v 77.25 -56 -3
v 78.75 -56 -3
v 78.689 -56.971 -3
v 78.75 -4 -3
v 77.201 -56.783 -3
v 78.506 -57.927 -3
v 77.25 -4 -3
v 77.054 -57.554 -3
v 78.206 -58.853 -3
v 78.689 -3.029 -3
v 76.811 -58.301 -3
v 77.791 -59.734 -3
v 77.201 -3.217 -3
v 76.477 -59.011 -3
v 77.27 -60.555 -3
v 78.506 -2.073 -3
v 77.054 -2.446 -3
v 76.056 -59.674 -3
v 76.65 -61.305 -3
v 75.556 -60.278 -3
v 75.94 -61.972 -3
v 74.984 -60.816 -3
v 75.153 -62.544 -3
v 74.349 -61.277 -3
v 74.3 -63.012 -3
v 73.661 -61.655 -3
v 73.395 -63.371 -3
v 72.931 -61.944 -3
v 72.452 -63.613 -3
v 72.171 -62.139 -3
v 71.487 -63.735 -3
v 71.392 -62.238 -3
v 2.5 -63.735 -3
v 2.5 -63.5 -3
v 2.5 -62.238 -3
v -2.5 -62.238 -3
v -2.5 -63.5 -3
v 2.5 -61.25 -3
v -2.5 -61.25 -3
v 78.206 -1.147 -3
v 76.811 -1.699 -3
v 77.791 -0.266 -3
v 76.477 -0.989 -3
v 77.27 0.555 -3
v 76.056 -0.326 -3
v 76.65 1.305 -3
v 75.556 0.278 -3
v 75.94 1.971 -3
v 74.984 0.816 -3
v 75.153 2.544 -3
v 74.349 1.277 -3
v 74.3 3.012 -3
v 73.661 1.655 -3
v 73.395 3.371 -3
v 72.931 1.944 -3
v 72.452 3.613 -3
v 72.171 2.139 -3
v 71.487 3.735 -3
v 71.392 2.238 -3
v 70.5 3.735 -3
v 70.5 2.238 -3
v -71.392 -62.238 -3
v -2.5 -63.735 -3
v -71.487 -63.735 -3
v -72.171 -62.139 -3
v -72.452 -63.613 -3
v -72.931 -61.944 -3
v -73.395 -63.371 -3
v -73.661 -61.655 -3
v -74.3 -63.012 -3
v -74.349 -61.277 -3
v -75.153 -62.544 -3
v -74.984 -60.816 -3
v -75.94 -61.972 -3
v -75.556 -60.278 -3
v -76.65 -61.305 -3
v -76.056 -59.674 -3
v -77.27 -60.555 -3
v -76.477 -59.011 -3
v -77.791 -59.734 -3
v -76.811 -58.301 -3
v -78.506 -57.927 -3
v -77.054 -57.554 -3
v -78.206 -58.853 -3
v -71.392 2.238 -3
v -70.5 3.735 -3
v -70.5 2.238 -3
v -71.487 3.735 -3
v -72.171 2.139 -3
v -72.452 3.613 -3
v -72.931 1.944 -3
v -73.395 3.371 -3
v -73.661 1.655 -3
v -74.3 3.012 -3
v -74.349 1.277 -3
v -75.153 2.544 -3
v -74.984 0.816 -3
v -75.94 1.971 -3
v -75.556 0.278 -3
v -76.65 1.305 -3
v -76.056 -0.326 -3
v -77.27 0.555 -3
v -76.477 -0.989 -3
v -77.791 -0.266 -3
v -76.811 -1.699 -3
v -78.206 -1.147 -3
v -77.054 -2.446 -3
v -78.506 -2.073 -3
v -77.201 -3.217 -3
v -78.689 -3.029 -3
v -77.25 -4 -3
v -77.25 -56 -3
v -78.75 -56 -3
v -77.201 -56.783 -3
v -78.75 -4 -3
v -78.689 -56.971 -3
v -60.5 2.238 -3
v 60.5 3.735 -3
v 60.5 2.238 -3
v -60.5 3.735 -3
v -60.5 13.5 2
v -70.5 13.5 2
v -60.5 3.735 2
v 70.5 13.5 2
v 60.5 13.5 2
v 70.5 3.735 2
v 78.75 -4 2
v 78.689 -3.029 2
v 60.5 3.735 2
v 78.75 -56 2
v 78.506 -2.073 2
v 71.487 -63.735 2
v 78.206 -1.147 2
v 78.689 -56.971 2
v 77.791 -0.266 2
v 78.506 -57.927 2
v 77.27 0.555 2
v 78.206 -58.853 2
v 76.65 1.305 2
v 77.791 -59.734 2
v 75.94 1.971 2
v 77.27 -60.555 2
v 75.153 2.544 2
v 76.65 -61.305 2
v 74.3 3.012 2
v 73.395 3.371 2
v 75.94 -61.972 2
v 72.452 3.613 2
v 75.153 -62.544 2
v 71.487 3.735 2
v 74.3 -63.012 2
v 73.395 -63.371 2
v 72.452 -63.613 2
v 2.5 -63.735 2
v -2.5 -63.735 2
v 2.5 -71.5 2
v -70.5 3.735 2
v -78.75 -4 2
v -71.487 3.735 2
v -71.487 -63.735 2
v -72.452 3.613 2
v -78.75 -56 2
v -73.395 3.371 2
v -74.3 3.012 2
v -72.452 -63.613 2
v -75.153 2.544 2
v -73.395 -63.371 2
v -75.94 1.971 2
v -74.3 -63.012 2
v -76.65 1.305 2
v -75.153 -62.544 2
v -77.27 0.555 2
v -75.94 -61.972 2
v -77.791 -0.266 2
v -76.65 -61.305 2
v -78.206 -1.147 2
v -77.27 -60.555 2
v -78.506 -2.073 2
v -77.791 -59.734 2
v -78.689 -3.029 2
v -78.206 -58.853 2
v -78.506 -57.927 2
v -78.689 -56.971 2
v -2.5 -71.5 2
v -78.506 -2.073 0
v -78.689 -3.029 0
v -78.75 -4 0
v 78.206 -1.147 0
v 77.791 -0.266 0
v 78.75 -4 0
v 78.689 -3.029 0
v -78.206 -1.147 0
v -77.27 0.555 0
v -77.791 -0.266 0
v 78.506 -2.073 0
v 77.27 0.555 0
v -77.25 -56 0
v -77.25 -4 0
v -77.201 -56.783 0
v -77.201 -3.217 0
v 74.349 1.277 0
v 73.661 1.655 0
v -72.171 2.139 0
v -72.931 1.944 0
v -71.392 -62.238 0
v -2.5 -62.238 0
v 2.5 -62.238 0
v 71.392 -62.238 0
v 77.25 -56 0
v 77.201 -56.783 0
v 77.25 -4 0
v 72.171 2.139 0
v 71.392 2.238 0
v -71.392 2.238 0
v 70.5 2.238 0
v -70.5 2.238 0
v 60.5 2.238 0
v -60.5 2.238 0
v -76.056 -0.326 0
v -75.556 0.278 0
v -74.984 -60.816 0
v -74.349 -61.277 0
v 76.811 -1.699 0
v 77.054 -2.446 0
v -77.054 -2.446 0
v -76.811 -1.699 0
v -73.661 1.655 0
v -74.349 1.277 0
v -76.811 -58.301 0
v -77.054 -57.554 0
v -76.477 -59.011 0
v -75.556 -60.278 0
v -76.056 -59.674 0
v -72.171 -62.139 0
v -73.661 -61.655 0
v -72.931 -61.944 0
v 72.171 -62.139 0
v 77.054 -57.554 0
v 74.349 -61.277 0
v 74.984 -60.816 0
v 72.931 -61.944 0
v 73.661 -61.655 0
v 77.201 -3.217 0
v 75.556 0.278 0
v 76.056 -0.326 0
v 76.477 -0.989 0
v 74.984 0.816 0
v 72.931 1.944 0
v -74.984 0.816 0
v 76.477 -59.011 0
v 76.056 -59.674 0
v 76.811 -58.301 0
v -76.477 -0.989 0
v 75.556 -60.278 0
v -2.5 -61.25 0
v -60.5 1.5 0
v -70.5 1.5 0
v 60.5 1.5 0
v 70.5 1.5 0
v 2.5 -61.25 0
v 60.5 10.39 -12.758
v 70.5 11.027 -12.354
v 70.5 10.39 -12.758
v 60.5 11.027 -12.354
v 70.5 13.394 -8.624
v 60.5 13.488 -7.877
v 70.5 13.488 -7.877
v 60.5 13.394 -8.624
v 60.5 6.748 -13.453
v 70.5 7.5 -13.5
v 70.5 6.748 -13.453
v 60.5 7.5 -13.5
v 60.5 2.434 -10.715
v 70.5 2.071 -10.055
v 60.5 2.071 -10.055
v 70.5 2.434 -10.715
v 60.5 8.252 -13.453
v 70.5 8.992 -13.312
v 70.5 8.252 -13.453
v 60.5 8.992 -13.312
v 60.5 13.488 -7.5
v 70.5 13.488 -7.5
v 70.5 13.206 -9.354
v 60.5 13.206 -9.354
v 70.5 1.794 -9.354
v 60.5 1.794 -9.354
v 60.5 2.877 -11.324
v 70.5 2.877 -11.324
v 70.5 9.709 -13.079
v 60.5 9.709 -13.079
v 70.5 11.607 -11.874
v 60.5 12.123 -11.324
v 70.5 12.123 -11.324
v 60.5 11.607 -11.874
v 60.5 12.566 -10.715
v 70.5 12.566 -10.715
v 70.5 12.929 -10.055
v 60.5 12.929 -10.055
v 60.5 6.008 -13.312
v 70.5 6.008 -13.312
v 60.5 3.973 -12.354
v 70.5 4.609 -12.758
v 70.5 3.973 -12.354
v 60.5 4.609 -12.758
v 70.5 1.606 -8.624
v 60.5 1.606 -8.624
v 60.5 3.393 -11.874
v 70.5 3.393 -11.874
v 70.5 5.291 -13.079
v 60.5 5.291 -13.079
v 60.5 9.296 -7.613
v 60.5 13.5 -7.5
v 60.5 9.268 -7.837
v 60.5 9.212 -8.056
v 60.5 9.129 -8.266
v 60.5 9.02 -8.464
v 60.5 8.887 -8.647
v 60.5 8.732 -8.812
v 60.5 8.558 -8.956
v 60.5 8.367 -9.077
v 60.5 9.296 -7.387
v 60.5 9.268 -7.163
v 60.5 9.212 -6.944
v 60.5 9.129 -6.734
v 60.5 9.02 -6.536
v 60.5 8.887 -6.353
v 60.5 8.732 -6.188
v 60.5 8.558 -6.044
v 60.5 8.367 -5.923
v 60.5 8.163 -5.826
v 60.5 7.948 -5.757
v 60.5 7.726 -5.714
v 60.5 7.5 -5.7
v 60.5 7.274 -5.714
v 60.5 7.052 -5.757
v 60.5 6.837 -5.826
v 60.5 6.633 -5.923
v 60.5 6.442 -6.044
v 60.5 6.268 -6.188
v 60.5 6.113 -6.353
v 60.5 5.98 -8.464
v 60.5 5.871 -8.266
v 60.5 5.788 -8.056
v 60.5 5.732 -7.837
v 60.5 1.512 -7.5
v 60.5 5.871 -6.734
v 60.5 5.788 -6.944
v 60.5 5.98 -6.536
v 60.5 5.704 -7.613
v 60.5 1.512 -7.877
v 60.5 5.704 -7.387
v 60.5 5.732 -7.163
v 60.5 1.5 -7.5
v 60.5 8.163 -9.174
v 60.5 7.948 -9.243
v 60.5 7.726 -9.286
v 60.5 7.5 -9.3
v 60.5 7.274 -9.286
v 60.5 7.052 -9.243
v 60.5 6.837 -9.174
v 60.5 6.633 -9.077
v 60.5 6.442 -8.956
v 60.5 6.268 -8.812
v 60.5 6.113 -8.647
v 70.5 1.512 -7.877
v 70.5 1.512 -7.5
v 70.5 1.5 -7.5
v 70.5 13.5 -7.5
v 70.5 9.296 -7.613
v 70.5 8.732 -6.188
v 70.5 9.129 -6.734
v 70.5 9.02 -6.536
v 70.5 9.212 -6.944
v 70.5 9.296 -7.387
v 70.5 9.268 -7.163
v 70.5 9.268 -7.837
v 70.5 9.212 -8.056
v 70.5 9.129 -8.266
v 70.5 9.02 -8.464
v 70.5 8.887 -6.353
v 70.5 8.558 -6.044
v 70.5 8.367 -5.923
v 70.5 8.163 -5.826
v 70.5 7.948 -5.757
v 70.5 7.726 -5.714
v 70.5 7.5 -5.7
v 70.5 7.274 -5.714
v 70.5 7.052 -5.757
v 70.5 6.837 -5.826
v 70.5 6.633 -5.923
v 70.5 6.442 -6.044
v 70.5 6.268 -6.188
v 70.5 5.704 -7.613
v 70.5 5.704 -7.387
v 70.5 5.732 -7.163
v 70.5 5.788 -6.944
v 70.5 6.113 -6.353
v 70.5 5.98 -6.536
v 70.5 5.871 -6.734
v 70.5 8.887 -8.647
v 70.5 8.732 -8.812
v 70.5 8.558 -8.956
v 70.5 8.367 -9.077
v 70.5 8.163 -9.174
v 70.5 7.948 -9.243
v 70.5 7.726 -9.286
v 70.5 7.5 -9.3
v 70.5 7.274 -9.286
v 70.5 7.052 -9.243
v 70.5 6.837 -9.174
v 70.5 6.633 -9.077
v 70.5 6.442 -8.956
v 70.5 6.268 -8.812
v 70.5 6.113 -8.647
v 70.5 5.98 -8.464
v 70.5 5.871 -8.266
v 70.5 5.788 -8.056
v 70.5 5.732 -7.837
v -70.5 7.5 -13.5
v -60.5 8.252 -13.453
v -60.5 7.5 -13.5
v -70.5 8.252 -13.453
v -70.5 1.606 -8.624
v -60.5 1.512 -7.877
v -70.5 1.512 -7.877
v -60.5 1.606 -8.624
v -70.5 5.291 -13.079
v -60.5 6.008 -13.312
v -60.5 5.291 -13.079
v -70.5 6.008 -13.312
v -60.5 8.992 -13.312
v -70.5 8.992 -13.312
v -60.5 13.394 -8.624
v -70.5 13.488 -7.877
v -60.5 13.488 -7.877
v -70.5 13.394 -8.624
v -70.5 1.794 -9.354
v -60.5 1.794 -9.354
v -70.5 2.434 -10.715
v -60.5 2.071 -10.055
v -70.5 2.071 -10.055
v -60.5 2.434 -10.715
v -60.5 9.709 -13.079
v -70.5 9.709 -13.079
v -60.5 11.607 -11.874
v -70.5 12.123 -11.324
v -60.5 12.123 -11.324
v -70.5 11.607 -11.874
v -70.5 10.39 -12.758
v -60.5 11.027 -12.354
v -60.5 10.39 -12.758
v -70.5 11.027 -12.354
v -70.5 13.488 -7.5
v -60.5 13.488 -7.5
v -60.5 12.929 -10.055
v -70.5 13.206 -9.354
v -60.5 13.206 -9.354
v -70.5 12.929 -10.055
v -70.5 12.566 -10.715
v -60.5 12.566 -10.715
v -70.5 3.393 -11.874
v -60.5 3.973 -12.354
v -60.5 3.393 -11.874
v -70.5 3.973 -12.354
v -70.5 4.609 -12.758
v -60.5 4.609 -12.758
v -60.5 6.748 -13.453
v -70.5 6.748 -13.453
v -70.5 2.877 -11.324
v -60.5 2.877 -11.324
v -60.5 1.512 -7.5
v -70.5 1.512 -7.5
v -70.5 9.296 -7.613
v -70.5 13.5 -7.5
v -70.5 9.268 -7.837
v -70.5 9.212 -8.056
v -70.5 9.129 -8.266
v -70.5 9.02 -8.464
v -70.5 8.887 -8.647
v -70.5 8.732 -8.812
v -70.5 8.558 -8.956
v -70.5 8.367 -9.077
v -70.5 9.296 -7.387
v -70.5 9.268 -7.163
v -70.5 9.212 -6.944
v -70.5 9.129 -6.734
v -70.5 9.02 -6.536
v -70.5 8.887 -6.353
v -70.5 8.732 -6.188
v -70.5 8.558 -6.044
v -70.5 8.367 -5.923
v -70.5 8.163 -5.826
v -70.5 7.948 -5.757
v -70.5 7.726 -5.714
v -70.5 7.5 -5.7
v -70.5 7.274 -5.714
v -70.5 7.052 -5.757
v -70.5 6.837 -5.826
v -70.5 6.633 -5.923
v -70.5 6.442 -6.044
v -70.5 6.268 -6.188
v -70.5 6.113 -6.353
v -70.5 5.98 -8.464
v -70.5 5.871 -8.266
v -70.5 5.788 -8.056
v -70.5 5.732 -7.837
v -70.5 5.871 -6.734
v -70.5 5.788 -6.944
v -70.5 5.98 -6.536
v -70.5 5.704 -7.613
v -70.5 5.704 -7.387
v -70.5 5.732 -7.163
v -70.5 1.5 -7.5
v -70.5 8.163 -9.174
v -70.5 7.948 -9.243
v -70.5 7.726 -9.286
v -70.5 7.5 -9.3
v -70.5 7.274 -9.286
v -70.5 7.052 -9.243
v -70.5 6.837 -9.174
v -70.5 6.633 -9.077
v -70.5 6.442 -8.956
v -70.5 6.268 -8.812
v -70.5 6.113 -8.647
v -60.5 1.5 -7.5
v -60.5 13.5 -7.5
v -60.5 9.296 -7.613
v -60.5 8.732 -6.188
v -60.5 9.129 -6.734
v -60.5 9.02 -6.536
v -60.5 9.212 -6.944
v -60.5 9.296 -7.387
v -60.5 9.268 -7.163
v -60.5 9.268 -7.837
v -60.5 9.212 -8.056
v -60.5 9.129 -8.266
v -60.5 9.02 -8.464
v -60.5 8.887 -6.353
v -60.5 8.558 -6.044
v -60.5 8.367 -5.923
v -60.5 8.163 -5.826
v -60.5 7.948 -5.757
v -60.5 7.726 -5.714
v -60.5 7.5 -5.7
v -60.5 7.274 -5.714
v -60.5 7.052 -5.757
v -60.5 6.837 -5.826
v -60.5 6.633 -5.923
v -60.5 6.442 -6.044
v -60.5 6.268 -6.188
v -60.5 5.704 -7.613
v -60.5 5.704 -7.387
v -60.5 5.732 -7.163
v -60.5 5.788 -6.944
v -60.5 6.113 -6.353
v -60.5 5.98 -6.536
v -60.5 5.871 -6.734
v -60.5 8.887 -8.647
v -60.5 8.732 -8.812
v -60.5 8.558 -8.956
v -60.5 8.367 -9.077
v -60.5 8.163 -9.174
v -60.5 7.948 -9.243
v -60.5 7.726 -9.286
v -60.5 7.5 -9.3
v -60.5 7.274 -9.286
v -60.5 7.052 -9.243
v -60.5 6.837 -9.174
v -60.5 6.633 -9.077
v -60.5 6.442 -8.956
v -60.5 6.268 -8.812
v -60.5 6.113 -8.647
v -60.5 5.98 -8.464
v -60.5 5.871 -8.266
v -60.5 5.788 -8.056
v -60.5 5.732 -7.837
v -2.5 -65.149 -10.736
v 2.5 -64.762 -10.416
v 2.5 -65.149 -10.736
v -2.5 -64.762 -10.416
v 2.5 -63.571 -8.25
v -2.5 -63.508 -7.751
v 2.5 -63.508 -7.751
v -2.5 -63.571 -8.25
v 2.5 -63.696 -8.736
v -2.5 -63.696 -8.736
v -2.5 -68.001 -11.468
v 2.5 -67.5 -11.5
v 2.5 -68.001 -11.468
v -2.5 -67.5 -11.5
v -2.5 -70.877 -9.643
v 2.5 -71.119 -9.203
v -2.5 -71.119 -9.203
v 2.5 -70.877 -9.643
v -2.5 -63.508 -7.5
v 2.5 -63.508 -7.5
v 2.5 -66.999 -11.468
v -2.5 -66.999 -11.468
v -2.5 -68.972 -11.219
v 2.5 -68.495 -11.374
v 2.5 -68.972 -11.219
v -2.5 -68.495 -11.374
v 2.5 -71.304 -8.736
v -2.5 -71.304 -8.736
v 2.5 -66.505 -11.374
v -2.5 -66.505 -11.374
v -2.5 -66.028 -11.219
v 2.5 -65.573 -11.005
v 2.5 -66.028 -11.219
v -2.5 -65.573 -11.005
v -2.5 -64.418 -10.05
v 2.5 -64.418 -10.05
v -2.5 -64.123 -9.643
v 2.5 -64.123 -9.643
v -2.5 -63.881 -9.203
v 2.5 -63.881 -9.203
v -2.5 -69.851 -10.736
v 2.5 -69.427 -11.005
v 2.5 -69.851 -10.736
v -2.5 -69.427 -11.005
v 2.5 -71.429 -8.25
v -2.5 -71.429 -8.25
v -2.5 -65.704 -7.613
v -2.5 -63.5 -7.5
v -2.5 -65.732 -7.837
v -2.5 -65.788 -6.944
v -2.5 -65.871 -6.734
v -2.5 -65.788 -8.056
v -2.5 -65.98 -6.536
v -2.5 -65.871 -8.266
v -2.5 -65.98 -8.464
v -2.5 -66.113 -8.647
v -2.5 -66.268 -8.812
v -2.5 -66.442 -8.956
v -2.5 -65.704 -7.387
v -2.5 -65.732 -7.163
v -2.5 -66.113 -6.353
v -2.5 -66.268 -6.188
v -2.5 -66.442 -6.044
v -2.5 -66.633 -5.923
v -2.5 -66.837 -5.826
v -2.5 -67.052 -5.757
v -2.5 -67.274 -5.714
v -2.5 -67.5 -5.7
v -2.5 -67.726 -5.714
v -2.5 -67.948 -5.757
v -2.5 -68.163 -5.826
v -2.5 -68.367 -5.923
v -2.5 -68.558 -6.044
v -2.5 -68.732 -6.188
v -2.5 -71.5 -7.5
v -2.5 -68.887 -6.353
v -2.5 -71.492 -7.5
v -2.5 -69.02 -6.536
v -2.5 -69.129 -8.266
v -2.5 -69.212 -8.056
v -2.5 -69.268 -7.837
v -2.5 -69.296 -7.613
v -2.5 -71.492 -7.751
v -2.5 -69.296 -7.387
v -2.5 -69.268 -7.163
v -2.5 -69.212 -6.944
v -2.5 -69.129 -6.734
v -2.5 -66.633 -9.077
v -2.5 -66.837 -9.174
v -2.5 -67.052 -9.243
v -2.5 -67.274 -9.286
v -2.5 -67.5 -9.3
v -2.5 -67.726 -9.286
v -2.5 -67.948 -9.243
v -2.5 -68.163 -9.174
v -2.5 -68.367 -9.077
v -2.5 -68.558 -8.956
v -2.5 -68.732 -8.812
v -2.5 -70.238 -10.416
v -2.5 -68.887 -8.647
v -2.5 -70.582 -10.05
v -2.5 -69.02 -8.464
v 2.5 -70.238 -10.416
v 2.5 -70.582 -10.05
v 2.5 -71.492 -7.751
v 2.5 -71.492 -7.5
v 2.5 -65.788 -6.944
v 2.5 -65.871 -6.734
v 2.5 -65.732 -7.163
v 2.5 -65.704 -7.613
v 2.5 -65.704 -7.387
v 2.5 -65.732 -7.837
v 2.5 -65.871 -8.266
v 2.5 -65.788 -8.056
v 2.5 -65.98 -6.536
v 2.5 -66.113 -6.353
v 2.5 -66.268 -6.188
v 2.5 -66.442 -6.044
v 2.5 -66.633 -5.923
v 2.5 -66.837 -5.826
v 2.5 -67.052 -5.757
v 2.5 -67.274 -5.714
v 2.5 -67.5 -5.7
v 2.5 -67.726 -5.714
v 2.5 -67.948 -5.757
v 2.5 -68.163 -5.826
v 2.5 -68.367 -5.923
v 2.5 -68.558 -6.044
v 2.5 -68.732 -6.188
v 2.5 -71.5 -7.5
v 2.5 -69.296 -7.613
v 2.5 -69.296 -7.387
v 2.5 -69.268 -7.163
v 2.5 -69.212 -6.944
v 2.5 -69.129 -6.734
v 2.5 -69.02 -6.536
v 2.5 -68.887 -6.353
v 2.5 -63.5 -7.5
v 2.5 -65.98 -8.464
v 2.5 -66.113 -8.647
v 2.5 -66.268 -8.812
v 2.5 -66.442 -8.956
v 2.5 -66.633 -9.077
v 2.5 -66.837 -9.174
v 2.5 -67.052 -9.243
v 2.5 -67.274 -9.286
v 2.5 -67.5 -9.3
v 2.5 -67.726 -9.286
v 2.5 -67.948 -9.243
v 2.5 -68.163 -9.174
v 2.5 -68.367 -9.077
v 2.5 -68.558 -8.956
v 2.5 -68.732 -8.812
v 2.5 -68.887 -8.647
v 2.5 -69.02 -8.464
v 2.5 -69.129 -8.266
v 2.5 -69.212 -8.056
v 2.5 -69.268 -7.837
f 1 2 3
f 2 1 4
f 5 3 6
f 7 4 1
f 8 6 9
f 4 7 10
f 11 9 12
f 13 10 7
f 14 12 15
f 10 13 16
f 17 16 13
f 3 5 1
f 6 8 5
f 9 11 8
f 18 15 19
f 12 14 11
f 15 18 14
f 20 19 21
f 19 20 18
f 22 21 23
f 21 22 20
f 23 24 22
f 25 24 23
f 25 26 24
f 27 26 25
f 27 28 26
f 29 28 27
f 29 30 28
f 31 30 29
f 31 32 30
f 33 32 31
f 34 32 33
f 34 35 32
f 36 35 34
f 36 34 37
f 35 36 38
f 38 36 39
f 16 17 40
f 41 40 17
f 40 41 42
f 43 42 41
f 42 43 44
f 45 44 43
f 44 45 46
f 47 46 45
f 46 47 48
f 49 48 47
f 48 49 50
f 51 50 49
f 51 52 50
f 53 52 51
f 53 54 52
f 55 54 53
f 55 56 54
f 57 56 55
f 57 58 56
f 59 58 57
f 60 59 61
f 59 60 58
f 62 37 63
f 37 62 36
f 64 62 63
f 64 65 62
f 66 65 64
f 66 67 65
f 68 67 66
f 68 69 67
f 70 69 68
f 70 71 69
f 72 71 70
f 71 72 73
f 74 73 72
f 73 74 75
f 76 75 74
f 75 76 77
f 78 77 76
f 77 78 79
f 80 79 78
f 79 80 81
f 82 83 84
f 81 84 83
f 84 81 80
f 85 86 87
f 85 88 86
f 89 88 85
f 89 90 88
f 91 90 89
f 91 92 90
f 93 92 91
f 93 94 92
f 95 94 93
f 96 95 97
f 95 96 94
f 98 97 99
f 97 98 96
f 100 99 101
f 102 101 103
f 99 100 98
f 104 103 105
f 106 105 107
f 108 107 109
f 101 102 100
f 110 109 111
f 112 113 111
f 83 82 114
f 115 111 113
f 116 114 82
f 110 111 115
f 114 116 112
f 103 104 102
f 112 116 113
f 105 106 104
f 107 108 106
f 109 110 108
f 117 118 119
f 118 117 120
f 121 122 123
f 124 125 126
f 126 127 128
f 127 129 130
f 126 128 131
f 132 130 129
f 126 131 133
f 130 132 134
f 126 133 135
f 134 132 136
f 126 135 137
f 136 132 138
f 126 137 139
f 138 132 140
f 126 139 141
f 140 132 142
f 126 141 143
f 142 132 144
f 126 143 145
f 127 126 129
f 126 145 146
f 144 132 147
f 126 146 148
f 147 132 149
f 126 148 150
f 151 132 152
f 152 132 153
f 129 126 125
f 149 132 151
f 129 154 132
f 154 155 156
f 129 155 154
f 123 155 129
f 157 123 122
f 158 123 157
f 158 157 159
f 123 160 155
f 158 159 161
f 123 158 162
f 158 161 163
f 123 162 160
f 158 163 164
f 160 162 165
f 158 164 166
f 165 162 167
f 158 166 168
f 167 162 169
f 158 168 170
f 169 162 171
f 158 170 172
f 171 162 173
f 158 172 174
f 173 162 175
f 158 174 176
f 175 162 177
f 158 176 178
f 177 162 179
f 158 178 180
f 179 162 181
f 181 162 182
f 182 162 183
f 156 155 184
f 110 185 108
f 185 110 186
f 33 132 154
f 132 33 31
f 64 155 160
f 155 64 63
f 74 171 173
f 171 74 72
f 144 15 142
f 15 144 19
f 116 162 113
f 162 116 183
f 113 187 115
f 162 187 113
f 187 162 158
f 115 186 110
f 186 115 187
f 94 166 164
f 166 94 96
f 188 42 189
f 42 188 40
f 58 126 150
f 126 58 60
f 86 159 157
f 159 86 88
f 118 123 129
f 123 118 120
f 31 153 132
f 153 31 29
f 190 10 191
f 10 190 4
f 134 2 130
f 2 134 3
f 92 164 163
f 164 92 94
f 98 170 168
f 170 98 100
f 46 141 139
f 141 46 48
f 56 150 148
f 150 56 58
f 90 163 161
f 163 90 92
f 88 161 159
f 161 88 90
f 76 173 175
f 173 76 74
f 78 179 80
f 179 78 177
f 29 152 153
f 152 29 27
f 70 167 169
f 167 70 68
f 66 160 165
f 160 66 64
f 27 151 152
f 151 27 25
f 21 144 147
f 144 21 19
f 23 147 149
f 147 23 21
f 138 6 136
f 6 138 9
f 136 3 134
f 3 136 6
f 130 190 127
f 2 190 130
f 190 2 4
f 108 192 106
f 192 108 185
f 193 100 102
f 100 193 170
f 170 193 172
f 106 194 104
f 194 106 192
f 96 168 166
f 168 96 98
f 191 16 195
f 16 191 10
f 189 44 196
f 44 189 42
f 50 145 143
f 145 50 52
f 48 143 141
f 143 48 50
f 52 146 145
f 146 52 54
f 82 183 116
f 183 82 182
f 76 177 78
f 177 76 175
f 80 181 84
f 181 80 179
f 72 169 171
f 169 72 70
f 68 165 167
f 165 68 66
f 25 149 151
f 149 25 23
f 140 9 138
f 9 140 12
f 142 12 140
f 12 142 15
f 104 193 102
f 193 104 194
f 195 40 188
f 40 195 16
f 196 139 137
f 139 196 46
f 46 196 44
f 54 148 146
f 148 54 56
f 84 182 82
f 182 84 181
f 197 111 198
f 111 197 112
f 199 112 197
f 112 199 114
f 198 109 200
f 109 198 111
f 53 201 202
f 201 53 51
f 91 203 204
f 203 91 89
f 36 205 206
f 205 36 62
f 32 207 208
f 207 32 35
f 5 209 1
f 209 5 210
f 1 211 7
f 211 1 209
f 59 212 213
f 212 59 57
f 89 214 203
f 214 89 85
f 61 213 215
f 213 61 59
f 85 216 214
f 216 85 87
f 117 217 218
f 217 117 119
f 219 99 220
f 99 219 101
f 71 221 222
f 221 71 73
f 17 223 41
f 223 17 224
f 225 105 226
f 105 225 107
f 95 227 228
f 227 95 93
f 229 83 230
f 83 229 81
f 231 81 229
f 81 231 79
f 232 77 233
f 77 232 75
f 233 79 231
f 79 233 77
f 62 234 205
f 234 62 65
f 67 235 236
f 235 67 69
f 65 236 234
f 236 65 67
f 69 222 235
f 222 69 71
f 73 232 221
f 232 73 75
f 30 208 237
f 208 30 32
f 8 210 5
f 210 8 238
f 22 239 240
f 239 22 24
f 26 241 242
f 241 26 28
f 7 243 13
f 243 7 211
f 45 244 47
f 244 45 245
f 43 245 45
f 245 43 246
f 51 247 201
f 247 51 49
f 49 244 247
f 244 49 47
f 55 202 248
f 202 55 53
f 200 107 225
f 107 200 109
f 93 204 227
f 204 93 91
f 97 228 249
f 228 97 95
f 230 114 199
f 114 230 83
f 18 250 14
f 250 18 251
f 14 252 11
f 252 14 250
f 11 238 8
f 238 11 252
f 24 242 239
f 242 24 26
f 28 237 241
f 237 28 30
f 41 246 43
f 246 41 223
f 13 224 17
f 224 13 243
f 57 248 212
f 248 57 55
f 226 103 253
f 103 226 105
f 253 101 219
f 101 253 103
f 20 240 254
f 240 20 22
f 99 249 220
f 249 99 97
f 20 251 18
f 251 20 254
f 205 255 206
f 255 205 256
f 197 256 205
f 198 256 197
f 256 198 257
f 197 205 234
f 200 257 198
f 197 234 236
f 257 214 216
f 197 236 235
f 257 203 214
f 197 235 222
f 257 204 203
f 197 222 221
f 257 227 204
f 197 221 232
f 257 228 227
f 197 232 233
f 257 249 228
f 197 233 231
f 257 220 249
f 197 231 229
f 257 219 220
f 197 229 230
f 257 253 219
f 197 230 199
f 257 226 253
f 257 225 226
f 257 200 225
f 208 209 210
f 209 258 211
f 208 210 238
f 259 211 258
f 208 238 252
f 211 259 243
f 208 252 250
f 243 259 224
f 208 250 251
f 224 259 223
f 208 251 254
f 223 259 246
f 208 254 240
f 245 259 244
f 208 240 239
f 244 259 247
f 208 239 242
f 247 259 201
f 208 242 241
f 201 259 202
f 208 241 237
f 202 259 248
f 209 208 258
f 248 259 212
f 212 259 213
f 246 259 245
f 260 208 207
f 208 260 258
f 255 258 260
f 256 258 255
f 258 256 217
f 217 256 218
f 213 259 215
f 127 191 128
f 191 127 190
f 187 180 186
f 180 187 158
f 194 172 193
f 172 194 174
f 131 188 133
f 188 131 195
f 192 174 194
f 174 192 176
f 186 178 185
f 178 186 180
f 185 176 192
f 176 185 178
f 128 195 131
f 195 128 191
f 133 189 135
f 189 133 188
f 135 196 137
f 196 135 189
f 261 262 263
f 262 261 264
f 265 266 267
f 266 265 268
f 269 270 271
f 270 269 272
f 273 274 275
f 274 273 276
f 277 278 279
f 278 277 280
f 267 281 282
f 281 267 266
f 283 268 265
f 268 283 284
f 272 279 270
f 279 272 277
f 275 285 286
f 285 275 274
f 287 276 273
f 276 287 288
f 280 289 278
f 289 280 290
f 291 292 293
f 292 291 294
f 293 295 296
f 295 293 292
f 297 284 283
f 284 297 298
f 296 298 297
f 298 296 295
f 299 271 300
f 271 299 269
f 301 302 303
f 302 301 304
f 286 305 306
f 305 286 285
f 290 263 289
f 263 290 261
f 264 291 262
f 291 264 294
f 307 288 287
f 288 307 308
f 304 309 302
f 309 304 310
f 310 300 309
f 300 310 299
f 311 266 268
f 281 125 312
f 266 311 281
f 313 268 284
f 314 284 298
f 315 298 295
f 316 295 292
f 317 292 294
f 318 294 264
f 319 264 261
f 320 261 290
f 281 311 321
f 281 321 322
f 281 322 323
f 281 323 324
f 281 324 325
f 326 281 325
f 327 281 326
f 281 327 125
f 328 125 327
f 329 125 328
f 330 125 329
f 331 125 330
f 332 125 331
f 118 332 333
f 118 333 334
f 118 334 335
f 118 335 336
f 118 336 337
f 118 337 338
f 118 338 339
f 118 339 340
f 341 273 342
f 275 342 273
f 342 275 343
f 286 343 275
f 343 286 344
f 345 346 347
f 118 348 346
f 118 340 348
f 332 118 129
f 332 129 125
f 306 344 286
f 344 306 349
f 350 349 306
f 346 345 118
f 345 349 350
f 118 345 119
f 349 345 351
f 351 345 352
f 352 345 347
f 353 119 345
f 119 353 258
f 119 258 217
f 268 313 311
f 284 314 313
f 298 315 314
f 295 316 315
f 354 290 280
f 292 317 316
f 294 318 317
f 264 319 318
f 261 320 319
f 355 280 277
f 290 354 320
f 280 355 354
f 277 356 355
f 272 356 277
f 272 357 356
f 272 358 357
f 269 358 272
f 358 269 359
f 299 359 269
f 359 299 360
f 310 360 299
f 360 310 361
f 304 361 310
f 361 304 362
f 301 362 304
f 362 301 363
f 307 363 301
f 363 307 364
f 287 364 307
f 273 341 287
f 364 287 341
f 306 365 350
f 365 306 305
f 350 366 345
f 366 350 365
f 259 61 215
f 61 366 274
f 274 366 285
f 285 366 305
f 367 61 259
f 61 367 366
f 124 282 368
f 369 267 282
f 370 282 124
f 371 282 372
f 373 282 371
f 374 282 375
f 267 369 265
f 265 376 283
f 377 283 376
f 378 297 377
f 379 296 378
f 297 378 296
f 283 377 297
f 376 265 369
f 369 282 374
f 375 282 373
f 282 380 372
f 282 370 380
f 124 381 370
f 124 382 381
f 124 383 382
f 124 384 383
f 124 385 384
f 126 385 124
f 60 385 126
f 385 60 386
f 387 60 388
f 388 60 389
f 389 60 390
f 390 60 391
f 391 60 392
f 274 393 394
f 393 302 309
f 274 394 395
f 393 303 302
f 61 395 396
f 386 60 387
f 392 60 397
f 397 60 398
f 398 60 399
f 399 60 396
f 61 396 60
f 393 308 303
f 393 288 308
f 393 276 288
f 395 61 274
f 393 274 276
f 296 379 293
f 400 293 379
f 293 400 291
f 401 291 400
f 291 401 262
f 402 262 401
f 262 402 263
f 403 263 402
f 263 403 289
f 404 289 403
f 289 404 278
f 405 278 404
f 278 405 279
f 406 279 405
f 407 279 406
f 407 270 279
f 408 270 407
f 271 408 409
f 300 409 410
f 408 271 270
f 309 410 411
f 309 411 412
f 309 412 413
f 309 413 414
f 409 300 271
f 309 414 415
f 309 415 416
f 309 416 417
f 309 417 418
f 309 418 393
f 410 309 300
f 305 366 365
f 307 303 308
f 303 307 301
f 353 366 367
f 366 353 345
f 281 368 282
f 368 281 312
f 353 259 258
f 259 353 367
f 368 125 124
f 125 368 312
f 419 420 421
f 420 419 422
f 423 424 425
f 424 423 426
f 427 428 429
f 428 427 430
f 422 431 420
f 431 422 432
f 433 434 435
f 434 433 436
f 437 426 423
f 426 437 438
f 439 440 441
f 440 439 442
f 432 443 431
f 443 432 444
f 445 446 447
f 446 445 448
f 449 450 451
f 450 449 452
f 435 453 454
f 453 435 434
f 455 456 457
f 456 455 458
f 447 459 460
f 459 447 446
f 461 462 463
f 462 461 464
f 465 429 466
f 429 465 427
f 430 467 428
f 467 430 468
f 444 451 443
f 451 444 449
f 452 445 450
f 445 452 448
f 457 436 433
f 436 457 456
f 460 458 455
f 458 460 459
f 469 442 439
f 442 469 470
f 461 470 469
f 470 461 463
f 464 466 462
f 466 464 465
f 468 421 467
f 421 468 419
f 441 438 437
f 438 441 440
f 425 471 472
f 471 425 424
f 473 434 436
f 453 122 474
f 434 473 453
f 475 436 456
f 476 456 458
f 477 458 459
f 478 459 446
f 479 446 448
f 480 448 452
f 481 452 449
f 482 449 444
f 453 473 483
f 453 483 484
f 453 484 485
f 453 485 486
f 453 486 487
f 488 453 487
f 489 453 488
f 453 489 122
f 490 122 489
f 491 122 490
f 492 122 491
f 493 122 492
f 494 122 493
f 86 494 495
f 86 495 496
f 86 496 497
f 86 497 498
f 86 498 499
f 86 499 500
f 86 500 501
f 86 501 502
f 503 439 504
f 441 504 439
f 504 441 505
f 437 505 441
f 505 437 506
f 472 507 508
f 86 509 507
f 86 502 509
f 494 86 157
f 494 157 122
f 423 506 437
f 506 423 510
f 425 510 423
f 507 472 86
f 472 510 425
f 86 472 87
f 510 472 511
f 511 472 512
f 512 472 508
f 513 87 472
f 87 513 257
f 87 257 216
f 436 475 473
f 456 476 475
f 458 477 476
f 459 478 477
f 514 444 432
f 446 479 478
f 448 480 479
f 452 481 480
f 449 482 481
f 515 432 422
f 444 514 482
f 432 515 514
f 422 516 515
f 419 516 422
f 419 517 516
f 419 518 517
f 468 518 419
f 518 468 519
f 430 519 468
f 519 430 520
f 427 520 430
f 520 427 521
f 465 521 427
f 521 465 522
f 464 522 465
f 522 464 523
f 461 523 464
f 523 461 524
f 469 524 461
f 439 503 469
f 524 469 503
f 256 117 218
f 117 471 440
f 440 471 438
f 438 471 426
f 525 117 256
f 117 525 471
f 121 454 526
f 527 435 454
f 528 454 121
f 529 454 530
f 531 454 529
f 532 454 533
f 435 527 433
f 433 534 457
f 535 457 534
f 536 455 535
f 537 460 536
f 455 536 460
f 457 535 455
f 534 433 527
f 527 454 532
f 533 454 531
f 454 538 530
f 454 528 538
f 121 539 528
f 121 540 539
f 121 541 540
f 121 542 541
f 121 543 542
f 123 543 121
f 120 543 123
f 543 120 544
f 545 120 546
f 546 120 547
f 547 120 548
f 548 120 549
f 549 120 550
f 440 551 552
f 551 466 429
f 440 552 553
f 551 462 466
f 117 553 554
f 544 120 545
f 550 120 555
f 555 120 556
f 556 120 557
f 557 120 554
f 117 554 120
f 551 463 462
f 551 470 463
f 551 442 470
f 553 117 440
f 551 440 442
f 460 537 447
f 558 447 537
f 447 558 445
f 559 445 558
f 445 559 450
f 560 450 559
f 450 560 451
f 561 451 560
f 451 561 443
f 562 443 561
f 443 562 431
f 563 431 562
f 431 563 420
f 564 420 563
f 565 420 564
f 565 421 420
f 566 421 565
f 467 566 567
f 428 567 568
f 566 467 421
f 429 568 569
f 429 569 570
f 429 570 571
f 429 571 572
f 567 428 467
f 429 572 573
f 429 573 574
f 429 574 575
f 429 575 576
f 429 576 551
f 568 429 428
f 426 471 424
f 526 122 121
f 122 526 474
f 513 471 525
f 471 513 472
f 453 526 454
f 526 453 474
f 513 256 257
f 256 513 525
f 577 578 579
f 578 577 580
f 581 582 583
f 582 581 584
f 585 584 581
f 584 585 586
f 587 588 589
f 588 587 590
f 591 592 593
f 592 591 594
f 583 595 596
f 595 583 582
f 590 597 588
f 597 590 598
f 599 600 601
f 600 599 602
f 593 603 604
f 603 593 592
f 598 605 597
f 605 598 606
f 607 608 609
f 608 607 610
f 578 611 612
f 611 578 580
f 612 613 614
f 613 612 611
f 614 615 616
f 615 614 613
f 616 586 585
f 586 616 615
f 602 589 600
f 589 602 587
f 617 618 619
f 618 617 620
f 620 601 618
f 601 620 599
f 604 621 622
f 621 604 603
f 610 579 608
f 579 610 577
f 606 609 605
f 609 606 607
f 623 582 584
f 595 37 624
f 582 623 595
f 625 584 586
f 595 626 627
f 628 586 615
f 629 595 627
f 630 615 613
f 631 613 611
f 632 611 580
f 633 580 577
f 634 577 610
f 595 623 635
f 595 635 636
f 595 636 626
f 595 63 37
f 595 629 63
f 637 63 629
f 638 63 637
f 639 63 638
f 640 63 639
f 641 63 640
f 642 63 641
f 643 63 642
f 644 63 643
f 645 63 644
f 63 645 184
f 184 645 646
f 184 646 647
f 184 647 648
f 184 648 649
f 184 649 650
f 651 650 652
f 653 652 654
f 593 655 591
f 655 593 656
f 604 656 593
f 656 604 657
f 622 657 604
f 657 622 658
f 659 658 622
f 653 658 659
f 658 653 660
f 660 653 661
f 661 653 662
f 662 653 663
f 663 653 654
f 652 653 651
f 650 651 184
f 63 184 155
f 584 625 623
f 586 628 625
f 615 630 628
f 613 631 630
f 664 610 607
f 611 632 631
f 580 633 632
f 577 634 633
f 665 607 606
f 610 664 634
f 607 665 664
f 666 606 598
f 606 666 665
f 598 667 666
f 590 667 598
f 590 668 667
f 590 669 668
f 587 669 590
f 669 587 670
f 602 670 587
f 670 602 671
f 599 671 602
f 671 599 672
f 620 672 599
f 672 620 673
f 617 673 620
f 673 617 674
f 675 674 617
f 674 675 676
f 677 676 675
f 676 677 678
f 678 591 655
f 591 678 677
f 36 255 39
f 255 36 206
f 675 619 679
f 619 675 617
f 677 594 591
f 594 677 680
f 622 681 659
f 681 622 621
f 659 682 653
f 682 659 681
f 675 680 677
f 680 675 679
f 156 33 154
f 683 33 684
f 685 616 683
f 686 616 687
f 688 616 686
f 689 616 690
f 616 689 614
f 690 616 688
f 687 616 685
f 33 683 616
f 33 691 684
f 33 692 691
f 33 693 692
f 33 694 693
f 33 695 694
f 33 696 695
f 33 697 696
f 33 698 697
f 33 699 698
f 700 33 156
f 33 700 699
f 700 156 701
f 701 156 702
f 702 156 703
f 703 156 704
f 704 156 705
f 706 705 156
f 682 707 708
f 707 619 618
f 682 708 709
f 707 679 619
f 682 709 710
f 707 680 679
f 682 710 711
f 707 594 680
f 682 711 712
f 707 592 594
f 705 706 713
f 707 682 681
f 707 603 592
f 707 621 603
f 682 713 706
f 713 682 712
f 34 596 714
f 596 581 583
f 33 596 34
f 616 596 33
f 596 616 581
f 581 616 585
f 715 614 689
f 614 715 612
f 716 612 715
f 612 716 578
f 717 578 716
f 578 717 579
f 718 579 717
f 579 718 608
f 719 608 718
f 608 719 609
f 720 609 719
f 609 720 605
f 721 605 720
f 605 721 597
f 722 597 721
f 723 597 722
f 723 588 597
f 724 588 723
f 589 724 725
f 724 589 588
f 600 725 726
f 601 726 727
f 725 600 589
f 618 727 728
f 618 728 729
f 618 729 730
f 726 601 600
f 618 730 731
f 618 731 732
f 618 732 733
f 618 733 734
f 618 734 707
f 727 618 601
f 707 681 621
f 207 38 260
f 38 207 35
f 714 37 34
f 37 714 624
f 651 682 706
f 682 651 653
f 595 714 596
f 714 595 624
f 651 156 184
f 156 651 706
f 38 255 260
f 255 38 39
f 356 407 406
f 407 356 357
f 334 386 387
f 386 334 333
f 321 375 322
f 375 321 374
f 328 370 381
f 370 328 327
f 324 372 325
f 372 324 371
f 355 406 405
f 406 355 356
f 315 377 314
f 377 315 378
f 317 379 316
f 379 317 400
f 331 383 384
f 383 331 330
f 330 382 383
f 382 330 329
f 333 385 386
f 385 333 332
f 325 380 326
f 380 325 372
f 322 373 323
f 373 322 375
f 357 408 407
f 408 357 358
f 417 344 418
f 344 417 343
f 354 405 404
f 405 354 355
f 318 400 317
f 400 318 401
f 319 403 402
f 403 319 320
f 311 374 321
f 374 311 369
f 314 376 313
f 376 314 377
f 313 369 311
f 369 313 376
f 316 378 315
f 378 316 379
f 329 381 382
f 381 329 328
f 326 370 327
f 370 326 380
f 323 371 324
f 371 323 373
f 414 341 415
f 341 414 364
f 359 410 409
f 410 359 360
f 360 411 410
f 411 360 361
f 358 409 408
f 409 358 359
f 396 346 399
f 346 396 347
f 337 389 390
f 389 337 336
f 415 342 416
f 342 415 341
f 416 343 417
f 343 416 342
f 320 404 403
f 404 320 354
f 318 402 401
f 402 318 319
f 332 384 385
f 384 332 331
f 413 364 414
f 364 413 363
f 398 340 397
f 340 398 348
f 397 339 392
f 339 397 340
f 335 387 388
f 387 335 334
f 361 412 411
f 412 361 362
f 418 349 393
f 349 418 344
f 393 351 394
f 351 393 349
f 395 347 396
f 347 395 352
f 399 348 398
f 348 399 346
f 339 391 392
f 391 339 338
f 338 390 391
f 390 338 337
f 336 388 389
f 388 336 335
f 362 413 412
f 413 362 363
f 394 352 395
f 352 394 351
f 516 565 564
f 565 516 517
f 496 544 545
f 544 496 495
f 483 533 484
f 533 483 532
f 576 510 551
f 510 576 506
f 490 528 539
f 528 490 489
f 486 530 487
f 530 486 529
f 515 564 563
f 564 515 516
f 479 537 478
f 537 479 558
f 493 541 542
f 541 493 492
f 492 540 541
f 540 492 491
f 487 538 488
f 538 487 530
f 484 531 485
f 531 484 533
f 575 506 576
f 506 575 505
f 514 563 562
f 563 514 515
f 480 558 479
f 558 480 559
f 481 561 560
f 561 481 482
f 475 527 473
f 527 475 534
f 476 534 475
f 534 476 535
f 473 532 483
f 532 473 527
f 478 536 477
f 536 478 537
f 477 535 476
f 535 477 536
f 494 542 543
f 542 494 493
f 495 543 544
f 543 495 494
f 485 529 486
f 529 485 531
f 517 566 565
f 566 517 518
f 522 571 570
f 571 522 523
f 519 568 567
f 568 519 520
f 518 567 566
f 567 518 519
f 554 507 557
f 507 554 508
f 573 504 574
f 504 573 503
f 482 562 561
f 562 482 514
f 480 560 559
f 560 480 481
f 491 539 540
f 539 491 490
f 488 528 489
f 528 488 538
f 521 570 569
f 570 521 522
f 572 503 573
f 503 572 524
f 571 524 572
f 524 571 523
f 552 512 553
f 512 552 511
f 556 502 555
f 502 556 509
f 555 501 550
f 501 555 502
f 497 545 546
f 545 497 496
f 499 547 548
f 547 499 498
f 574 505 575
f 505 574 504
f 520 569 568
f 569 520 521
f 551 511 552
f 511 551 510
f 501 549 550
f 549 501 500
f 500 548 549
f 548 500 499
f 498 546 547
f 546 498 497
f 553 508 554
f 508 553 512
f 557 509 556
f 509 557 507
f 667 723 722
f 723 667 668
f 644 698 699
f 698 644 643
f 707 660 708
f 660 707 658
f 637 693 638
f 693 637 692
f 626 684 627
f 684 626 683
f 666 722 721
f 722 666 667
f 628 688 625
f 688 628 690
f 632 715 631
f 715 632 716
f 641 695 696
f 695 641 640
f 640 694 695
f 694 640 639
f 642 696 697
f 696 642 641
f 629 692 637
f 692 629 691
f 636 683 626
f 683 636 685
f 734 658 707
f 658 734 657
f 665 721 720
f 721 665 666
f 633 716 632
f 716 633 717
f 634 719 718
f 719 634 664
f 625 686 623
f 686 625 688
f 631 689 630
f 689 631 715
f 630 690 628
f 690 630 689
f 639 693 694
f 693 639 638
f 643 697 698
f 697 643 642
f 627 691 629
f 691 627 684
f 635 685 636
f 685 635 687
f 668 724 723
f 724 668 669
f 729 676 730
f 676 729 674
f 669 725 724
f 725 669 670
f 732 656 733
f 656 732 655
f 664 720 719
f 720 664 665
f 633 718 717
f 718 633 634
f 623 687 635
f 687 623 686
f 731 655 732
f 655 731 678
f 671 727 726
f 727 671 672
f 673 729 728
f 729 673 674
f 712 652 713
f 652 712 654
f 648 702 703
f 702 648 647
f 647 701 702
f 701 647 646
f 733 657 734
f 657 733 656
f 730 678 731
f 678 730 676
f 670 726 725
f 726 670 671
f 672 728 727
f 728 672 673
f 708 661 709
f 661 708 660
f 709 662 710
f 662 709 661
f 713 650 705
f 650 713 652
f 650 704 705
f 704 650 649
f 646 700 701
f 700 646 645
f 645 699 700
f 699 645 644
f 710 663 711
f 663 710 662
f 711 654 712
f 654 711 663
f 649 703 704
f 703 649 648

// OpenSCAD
$fn = 50;


difference() {
	union() {
		translate(v = [0, -30.0000000000, -3]) {
			rotate(a = [0, 0, 0]) {
				difference() {
					union() {
						hull() {
							translate(v = [-71.0000000000, 26.0000000000, 0]) {
								cylinder(h = 5, r = 7.7500000000);
							}
							translate(v = [71.0000000000, 26.0000000000, 0]) {
								cylinder(h = 5, r = 7.7500000000);
							}
							translate(v = [-71.0000000000, -26.0000000000, 0]) {
								cylinder(h = 5, r = 7.7500000000);
							}
							translate(v = [71.0000000000, -26.0000000000, 0]) {
								cylinder(h = 5, r = 7.7500000000);
							}
						}
					}
					union() {
						hull() {
							translate(v = [-71.0000000000, 26.0000000000, 0]) {
								cylinder(h = 5, r = 6.2500000000);
							}
							translate(v = [71.0000000000, 26.0000000000, 0]) {
								cylinder(h = 5, r = 6.2500000000);
							}
							translate(v = [-71.0000000000, -26.0000000000, 0]) {
								cylinder(h = 5, r = 6.2500000000);
							}
							translate(v = [71.0000000000, -26.0000000000, 0]) {
								cylinder(h = 5, r = 6.2500000000);
							}
						}
					}
				}
			}
		}
		translate(v = [0, -30.0000000000, 0]) {
			hull() {
				translate(v = [-71.0000000000, 26.0000000000, 0]) {
					cylinder(h = 2, r = 7.7500000000);
				}
				translate(v = [71.0000000000, 26.0000000000, 0]) {
					cylinder(h = 2, r = 7.7500000000);
				}
				translate(v = [-71.0000000000, -26.0000000000, 0]) {
					cylinder(h = 2, r = 7.7500000000);
				}
				translate(v = [71.0000000000, -26.0000000000, 0]) {
					cylinder(h = 2, r = 7.7500000000);
				}
			}
		}
		translate(v = [60.5000000000, 7.5000000000, -7.5000000000]) {
			rotate(a = [0, 90, 0]) {
				cylinder(h = 10, r = 6.0000000000);
			}
		}
		translate(v = [60.5000000000, 1.5000000000, -7.5000000000]) {
			cube(size = [10, 12, 7.5000000000]);
		}
		translate(v = [60.5000000000, -15.0000000000, 0.0000000000]) {
			cube(size = [10, 28.5000000000, 2]);
		}
		translate(v = [-70.5000000000, 7.5000000000, -7.5000000000]) {
			rotate(a = [0, 90, 0]) {
				cylinder(h = 10, r = 6.0000000000);
			}
		}
		translate(v = [-70.5000000000, 1.5000000000, -7.5000000000]) {
			cube(size = [10, 12, 7.5000000000]);
		}
		translate(v = [-70.5000000000, -15.0000000000, 0.0000000000]) {
			cube(size = [10, 28.5000000000, 2]);
		}
		translate(v = [-2.5000000000, -67.5000000000, -7.5000000000]) {
			rotate(a = [0, 90, 0]) {
				cylinder(h = 5, r = 4.0000000000);
			}
		}
		translate(v = [-2.5000000000, -71.5000000000, -7.5000000000]) {
			cube(size = [5, 8, 7.5000000000]);
		}
		translate(v = [-2.5000000000, -71.5000000000, -3.0000000000]) {
			cube(size = [5, 10.2500000000, 5]);
		}
	}
	union() {
		translate(v = [60.5000000000, 7.5000000000, -7.5000000000]) {
			rotate(a = [0, 90, 0]) {
				cylinder(h = 10, r = 1.8000000000);
			}
		}
		translate(v = [-70.5000000000, 7.5000000000, -7.5000000000]) {
			rotate(a = [0, 90, 0]) {
				cylinder(h = 10, r = 1.8000000000);
			}
		}
		translate(v = [-5.0000000000, -67.5000000000, -7.5000000000]) {
			rotate(a = [0, 90, 0]) {
				cylinder(h = 10, r = 1.8000000000);
			}
		}
	}
}
